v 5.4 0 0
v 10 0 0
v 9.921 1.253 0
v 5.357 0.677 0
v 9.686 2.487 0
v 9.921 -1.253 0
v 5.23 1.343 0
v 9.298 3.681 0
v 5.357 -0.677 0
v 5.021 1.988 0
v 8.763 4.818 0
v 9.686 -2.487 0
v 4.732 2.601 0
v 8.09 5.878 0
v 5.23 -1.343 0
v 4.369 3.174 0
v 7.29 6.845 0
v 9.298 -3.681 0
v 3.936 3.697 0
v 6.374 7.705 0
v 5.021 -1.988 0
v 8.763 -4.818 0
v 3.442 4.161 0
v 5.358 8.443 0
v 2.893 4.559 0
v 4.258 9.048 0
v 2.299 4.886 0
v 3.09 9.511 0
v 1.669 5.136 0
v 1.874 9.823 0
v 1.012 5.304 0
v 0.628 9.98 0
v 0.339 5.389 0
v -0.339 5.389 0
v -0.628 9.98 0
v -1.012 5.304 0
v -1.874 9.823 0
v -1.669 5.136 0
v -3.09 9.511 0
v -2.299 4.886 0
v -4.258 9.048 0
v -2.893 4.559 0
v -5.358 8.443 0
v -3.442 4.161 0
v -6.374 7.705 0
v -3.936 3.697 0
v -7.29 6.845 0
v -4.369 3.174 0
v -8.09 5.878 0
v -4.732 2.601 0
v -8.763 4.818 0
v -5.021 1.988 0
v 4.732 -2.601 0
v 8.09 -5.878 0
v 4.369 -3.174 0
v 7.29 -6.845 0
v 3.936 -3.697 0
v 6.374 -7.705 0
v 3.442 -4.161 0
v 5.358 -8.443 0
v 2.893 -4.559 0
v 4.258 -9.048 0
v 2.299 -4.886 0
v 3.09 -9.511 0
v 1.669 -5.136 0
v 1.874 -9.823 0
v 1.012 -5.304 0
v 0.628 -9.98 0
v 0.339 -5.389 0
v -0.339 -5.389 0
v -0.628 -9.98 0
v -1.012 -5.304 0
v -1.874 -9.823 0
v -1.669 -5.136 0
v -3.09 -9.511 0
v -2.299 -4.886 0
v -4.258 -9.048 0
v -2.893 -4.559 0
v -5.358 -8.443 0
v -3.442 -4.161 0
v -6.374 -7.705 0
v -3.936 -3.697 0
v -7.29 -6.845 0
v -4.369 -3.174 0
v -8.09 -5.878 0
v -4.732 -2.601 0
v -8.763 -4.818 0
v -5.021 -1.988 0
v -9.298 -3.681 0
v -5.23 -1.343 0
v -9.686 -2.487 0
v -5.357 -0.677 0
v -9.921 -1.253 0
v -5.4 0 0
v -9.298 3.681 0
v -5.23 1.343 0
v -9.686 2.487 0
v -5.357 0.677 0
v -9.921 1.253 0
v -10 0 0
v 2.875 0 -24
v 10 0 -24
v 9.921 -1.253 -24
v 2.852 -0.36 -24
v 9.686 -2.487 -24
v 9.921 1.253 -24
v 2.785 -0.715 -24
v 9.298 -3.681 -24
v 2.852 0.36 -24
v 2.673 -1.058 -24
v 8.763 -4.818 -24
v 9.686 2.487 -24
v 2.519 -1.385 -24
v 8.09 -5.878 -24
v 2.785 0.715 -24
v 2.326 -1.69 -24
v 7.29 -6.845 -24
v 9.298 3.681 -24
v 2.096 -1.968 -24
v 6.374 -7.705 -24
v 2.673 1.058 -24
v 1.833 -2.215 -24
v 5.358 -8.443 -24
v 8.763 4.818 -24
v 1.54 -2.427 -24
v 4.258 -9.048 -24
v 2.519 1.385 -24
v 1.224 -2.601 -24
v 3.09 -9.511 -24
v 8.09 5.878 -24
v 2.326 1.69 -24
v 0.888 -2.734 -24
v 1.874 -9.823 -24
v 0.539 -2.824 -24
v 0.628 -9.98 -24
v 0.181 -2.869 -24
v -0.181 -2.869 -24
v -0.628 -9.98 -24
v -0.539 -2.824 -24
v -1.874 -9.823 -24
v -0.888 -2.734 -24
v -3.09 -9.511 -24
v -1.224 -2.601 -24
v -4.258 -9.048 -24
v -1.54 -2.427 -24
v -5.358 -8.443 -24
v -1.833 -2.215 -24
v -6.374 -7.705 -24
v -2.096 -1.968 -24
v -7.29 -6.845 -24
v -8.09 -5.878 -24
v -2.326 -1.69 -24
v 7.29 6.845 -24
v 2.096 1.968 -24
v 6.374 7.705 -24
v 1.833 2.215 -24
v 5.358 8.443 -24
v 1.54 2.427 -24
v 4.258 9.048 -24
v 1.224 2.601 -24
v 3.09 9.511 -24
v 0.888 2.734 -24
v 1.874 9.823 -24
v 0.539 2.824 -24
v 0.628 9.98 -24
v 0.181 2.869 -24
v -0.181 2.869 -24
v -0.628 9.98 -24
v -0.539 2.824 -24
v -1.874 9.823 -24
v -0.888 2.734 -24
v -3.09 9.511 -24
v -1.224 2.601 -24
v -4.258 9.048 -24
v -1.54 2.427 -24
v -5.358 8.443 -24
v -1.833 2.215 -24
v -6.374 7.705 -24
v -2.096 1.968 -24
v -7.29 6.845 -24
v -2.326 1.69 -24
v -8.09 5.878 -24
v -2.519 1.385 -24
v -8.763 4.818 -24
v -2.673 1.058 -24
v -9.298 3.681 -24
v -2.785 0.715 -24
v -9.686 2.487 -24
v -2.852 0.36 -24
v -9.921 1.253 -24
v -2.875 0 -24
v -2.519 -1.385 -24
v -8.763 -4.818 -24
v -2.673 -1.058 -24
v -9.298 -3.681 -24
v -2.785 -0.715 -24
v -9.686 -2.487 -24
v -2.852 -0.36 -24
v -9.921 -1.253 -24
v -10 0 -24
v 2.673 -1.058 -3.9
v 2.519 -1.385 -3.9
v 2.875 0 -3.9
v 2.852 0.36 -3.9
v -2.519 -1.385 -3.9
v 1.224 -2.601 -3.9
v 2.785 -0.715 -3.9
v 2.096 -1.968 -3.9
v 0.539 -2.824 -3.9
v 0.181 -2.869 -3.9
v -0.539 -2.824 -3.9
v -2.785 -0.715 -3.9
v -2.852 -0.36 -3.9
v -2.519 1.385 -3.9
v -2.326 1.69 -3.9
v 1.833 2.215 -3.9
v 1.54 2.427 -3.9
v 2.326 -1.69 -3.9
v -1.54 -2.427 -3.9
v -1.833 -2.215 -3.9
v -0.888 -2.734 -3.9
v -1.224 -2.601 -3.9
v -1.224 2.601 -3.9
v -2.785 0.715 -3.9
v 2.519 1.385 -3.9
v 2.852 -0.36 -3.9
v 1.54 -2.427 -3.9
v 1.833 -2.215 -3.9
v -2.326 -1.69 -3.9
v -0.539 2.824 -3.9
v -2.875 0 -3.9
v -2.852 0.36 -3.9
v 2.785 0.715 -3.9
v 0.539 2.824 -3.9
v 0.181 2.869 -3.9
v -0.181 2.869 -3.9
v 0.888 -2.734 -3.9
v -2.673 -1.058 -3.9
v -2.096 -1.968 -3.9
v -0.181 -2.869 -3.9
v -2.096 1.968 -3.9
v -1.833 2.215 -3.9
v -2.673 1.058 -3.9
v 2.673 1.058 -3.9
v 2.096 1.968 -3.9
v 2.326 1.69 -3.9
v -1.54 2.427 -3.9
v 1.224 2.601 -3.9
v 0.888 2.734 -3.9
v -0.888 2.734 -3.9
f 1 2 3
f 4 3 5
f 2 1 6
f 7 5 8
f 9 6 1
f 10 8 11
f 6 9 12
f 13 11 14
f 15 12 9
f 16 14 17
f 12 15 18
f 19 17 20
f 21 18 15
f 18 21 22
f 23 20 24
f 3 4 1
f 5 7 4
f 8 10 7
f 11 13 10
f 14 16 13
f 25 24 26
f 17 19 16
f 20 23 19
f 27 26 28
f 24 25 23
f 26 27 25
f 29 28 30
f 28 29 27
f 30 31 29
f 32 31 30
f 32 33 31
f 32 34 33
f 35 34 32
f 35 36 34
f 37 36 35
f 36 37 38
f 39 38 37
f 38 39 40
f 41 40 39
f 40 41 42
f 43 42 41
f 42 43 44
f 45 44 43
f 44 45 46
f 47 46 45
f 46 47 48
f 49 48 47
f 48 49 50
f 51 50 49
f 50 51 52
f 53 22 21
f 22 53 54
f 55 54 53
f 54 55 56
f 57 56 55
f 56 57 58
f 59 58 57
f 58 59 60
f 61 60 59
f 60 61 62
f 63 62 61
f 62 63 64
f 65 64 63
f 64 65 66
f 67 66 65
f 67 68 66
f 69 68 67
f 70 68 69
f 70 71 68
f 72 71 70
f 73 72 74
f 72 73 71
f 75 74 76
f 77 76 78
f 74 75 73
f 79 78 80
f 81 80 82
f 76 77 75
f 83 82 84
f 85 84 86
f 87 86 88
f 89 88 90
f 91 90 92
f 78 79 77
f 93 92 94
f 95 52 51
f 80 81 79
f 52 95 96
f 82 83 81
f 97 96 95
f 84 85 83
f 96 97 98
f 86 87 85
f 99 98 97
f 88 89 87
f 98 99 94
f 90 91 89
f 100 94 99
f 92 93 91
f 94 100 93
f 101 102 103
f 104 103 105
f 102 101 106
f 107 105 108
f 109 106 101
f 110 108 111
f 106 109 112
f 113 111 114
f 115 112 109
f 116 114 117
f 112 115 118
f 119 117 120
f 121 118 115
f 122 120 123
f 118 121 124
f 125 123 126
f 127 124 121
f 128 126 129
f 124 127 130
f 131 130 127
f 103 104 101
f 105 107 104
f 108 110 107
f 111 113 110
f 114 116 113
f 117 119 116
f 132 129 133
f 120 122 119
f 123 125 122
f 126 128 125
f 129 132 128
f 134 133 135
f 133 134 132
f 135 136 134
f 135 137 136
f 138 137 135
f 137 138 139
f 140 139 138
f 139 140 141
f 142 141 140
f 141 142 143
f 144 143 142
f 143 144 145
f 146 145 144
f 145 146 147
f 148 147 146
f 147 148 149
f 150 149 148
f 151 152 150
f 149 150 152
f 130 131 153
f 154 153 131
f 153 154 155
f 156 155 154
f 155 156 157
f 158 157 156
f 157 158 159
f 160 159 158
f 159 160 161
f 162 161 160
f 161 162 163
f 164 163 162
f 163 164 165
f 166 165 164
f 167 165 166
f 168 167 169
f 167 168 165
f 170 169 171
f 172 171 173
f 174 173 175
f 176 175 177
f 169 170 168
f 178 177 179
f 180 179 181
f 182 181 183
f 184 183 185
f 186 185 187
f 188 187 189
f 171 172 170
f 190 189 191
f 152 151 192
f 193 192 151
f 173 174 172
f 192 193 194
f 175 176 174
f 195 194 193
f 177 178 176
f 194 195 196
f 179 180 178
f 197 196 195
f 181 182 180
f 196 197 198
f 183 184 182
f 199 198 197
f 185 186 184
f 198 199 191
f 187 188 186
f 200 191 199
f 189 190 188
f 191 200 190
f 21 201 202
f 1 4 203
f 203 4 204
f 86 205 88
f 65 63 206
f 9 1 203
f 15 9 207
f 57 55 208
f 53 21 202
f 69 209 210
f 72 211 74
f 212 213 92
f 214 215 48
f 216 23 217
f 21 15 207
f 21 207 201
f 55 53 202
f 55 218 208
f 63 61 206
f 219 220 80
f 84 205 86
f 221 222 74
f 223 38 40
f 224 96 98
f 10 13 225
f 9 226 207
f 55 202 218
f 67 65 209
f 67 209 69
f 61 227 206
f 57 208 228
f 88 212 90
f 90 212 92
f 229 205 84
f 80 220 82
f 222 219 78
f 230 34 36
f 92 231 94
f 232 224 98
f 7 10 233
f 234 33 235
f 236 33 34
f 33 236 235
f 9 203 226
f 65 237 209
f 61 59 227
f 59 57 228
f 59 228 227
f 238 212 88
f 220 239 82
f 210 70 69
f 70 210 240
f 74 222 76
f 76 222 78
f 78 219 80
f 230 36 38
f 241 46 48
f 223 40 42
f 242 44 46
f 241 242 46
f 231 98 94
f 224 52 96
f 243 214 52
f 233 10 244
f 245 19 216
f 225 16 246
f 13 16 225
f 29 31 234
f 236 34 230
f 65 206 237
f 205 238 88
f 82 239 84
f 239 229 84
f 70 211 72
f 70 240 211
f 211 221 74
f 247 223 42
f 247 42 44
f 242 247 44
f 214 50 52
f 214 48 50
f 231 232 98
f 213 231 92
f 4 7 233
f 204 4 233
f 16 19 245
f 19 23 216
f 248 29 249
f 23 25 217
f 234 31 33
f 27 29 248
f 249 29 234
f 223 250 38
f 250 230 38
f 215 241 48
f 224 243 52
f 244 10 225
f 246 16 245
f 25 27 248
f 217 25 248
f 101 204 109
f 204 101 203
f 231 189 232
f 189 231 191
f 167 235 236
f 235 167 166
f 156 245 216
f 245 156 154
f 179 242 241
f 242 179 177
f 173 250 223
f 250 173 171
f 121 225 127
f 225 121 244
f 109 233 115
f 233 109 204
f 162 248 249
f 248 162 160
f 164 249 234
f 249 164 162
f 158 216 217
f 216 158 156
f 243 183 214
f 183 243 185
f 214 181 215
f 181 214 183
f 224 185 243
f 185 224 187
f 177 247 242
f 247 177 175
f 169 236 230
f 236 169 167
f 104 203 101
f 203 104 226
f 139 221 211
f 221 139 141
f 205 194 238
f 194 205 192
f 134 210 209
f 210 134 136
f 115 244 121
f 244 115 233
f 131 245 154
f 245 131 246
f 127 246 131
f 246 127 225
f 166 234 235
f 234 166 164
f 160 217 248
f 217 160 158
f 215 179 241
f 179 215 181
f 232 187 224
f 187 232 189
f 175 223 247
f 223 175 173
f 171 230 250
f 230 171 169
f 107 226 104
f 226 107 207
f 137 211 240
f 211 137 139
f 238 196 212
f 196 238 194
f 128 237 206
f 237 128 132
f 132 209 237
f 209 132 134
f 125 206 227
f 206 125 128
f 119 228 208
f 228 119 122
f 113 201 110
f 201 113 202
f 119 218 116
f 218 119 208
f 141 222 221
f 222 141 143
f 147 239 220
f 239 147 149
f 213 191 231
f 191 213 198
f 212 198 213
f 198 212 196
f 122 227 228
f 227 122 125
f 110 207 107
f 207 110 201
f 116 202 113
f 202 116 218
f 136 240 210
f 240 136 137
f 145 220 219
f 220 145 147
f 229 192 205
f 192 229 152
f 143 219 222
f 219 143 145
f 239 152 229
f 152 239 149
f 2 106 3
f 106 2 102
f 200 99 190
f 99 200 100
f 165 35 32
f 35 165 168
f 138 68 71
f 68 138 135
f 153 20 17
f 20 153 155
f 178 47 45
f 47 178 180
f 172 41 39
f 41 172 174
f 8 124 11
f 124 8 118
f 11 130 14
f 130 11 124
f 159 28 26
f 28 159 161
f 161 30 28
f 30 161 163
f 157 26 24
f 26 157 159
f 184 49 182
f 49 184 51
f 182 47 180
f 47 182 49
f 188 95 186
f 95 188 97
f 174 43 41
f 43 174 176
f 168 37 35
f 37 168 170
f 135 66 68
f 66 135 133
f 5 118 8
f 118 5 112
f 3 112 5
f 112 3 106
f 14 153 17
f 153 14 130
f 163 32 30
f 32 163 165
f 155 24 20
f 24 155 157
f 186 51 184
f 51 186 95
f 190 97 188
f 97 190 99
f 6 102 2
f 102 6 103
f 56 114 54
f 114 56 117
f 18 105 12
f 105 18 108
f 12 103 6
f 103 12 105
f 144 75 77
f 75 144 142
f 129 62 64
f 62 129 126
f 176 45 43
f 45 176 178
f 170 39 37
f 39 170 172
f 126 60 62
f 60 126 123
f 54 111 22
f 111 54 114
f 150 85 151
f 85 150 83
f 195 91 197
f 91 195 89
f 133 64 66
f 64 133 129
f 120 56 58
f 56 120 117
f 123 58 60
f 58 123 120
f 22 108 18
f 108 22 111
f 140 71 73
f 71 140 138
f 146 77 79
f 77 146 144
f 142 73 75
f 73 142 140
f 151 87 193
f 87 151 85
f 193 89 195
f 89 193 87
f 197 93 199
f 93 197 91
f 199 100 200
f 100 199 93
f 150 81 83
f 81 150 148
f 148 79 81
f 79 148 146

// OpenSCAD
$fn = 50;


difference() {
	union() {
		translate(v = [0, 0, -24.0000000000]) {
			cylinder(h = 24, r = 10.0000000000);
		}
		cylinder(h = 0, r = 20.0000000000);
	}
	union() {
		translate(v = [0, 0, 0]) {
			rotate(a = [0, 0, 0]) {
				difference() {
					union() {
						#translate(v = [0, 0, -24.0000000000]) {
							cylinder(h = 24, r = 2.6000000000);
						}
						#translate(v = [0, 0, -3.9000000000]) {
							cylinder(h = 3.9000000000, r = 10.0000000000, r1 = 2.8750000000, r2 = 5.4000000000);
						}
						#translate(v = [0, 0, -24.0000000000]) {
							cylinder(h = 24, r = 2.8750000000);
						}
						#translate(v = [0, 0, -24.0000000000]) {
							cylinder(h = 24, r = 2.6000000000);
						}
					}
					union();
				}
			}
		}
	}
}
